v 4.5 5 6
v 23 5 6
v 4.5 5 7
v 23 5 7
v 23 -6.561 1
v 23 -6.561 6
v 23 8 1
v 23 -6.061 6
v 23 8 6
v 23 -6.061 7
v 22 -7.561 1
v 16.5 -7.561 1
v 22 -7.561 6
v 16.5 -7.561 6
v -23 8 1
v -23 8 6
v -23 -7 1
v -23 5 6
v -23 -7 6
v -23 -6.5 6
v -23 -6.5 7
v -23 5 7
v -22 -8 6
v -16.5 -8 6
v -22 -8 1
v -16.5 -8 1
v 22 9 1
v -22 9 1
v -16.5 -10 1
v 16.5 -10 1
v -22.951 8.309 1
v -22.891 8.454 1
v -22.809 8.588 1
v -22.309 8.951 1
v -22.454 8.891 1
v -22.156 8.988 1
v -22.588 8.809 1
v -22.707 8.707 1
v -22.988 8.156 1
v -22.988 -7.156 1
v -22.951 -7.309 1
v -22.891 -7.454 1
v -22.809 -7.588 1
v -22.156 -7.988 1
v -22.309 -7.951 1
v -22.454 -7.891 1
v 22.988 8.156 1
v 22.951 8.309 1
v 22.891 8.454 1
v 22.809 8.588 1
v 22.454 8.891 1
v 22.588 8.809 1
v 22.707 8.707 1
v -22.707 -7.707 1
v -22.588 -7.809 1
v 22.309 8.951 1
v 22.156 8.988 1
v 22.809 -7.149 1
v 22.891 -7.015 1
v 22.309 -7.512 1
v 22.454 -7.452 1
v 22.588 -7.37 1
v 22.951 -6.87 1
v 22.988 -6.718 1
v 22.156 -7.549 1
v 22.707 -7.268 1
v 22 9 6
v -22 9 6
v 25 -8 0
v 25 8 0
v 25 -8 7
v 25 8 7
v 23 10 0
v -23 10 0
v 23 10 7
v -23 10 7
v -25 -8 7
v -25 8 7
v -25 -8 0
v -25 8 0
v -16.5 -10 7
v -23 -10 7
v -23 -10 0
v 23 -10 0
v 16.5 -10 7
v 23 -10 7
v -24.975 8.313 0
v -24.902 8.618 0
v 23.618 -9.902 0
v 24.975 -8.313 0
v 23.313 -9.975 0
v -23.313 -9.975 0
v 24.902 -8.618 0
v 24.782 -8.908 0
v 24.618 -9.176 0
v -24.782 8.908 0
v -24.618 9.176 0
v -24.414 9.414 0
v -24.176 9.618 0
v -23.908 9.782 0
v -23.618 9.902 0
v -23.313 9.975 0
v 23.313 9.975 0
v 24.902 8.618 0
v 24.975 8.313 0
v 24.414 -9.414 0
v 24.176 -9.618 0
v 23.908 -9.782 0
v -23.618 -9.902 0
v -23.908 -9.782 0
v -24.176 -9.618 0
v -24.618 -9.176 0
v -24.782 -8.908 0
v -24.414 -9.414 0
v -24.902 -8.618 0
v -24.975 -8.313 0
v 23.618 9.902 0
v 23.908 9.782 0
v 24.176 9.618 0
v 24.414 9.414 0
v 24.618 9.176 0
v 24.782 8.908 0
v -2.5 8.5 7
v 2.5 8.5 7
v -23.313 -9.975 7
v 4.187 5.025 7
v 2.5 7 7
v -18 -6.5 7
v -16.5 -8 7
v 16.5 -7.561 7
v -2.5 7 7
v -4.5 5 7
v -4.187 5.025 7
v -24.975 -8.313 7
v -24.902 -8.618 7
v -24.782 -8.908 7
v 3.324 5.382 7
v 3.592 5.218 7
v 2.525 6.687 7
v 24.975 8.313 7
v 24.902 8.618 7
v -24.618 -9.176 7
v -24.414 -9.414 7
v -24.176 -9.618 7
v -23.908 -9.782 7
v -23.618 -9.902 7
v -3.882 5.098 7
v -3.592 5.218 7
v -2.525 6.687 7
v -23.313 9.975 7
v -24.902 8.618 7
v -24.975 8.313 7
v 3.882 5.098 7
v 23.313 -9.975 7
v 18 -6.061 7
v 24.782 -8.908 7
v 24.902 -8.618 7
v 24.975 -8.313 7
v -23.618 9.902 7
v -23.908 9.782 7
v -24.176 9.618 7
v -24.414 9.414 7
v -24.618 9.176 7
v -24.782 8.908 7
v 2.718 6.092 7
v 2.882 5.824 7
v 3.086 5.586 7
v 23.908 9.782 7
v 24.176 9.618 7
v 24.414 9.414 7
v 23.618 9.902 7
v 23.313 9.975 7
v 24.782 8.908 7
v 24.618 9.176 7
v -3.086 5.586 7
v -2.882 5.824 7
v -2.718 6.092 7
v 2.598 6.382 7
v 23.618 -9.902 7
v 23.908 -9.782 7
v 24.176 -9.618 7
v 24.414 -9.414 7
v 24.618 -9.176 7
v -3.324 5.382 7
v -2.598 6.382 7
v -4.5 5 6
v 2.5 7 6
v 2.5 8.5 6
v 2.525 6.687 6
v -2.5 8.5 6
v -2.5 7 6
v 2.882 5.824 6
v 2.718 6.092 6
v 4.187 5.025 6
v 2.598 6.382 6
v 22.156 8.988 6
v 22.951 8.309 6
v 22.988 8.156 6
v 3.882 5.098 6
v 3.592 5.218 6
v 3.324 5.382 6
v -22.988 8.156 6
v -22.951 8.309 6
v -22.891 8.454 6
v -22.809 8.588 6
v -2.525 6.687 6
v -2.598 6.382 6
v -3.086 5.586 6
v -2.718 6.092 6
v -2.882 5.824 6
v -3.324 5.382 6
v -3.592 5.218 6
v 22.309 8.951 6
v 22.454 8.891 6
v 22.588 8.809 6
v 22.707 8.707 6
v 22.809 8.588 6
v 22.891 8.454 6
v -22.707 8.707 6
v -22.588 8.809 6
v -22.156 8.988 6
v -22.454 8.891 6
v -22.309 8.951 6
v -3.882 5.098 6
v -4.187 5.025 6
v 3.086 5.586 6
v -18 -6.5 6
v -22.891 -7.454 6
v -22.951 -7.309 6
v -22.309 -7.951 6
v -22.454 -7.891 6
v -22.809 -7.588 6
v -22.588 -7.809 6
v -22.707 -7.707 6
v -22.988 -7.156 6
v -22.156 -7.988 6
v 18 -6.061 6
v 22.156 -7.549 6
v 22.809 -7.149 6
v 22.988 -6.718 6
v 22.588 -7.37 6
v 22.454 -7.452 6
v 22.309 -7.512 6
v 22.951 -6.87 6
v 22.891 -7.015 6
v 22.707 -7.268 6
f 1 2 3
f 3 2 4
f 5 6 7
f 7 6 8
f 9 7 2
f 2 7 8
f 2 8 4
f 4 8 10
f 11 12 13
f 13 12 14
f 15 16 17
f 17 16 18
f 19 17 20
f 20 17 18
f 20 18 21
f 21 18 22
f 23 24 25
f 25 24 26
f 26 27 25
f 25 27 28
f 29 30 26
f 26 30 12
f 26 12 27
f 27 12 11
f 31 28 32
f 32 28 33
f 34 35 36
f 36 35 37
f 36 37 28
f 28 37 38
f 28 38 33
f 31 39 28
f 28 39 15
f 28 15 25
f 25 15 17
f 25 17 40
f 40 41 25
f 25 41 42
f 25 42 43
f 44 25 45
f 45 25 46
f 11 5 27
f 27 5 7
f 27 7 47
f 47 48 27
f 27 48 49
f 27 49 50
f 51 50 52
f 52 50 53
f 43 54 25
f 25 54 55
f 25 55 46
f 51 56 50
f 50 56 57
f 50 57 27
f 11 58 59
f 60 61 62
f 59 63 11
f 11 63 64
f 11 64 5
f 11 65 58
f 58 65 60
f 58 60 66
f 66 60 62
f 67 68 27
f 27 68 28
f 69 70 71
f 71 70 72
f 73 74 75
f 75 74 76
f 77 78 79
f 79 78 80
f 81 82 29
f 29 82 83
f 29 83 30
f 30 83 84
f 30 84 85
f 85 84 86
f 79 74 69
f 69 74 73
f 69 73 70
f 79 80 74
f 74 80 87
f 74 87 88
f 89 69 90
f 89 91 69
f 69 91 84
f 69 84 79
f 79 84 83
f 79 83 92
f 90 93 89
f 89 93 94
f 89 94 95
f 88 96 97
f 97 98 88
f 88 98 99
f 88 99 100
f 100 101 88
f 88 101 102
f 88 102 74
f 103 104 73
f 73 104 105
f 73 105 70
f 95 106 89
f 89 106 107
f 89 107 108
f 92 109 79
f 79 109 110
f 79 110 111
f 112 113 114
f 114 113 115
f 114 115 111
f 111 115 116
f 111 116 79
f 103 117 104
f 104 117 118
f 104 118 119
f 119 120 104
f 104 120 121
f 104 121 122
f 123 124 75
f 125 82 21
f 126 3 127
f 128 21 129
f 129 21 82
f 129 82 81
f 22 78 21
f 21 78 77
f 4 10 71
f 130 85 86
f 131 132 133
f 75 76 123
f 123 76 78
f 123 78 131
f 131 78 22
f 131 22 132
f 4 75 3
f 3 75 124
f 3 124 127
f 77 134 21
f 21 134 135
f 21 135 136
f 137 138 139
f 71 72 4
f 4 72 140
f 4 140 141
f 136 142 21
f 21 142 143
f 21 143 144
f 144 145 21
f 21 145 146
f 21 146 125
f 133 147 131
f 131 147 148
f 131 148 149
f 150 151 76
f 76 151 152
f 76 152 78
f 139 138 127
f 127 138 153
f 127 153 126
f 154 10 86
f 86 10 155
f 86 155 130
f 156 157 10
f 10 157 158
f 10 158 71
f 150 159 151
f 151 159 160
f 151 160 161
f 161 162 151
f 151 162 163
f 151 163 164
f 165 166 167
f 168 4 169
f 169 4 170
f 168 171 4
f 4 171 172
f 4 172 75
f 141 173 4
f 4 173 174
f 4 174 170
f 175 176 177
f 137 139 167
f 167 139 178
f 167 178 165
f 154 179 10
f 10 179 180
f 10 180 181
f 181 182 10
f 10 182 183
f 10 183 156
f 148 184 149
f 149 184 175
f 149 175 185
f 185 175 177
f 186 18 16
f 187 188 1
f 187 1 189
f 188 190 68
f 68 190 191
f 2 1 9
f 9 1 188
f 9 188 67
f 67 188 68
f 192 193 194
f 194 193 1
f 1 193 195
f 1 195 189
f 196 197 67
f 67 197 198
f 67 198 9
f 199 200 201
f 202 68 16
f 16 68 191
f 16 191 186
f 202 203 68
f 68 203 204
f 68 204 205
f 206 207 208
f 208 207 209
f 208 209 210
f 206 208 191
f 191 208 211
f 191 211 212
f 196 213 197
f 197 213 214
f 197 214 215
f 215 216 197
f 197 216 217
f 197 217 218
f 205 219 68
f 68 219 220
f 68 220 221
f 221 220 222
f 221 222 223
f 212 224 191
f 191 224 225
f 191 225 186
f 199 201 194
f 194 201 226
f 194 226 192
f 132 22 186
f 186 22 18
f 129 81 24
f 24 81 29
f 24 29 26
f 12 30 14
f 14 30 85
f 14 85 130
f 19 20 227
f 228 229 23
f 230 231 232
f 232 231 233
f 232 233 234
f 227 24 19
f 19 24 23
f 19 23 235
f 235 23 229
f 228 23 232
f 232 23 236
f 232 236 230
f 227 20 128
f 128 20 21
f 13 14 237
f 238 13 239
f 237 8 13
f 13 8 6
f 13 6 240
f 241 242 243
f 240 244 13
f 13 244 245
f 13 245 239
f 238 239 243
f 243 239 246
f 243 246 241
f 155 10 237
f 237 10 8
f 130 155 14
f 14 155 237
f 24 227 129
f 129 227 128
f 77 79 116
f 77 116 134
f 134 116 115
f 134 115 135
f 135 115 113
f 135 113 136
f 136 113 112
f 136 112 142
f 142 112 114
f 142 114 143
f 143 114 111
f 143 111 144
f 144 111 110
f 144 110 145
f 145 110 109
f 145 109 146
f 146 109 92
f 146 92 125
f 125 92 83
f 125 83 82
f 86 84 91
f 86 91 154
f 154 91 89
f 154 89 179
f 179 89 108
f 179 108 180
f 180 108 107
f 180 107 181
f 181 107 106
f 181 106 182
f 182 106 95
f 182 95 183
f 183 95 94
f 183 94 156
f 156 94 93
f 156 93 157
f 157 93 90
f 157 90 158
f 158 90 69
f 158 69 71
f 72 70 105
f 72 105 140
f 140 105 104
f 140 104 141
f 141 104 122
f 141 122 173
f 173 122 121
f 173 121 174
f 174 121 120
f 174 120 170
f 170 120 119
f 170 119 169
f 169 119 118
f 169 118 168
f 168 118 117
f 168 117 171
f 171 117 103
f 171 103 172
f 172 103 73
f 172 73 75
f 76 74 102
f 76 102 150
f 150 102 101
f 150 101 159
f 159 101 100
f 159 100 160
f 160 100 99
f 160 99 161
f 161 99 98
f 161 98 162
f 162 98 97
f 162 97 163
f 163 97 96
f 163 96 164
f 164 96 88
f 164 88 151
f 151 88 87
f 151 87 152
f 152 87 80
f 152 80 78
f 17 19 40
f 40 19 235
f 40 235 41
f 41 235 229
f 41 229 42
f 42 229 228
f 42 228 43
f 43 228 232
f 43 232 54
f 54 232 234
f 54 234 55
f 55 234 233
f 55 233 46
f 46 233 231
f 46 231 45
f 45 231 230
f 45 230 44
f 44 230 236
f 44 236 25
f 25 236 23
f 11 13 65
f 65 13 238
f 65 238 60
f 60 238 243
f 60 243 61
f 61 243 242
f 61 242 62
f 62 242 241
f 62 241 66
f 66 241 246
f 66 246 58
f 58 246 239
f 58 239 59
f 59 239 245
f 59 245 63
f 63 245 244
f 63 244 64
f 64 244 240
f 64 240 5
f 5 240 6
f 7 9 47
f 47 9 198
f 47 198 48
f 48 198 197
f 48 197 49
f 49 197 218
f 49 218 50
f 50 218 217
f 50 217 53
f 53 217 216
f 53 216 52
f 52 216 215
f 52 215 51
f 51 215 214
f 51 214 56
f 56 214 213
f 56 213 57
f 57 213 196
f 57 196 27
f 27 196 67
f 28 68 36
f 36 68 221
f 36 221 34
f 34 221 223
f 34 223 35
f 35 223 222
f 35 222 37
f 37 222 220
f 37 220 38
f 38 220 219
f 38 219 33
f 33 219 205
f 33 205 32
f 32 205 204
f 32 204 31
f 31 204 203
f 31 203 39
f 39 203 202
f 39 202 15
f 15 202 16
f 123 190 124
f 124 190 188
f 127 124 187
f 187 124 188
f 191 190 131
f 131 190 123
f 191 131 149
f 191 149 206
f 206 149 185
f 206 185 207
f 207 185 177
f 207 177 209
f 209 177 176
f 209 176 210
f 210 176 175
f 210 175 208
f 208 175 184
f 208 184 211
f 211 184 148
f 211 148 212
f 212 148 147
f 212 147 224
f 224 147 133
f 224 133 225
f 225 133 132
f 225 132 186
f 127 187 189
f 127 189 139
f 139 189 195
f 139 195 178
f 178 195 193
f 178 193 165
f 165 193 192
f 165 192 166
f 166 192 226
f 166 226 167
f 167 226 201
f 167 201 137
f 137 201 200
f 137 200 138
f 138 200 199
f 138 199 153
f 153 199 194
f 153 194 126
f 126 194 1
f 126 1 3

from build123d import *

# Parameters (mm, degrees)
SKETCH1_W           = 50
SKETCH1_H           = 20
BOSS_EXTRUDE1_DEPTH = 1
BOSS_EXTRUDE2_DEPTH = 6
SKETCH3_W           = 46
SKETCH3_H           = 1
BOSS_EXTRUDE3_DEPTH = 4
SKETCH4_W           = 6.5
SKETCH4_H           = 2
SKETCH4_H_2         = 2.438820915
BOSS_EXTRUDE4_DEPTH = 6
SKETCH5_W           = 6.5
SKETCH5_H           = 1
BOSS_EXTRUDE5_DEPTH = 1.5
SKETCH6_W           = 6.5
SKETCH6_H           = 1
BOSS_EXTRUDE6_DEPTH = 1.5
CHAMFER1_SIZE       = 1.5
FILLET1_R           = 2
FILLET2_R           = 1
SKETCH7_W           = 5
SKETCH7_H           = 3.5
CUT_EXTRUDE1_DEPTH  = 2
FILLET3_R           = 2


with BuildPart() as part:
    # Sketch1 → Boss-Extrude1 (new body)
    with BuildSketch(Plane.XY):
        Rectangle(SKETCH1_W, SKETCH1_H)
    extrude(amount=BOSS_EXTRUDE1_DEPTH)

    # Sketch2 → Boss-Extrude2 (add)
    with BuildSketch(Plane.XY.offset(1)):
        Polygon((-25, 10), (25, 10), (25, 9), (25, -10), (23, -10), (23, 9), (-23, 9), (-23, -10), (-25, -10), (-25, 9), align=None)
    extrude(amount=BOSS_EXTRUDE2_DEPTH)

    # Sketch3 → Boss-Extrude3 (add)
    with BuildSketch(Plane.XZ.offset(-9)):
        with Locations((0, 6.5)):
            Rectangle(SKETCH3_W, SKETCH3_H)
    extrude(amount=BOSS_EXTRUDE3_DEPTH)

    # Sketch4 → Boss-Extrude4 (add)
    with BuildSketch(Plane.XY.offset(1)):
        with Locations((-19.75, -9)):
            Rectangle(SKETCH4_W, SKETCH4_H)
        with Locations((19.75, -8.780589542)):
            Rectangle(SKETCH4_W, SKETCH4_H_2)
    extrude(amount=BOSS_EXTRUDE4_DEPTH)

    # Sketch5 → Boss-Extrude5 (add)
    with BuildSketch(Plane(origin=(0, -8, 0), x_dir=(1, 0, 0), z_dir=(0, 1, 0))):
        with Locations((-19.75, -6.5)):
            Rectangle(SKETCH5_W, SKETCH5_H)
    extrude(amount=BOSS_EXTRUDE5_DEPTH)

    # Sketch6 → Boss-Extrude6 (add)
    with BuildSketch(Plane(origin=(0, -7.561179085, 0), x_dir=(1, 0, 0), z_dir=(0, 1, 0))):
        with Locations((19.75, -6.5)):
            Rectangle(SKETCH6_W, SKETCH6_H)
    extrude(amount=BOSS_EXTRUDE6_DEPTH)

    # Chamfer1
    chamfer1_edges = [part.edges().sort_by_distance(p)[0] for p in [
        (16.5, -6.061179085, 6.5),
        (-16.5, -6.5, 6.5),
    ]]
    chamfer(chamfer1_edges, length=CHAMFER1_SIZE)

    # Fillet1
    fillet1_edges = [part.edges().sort_by_distance(p)[0] for p in [
        (25, -10, 3.5),
        (-25, -10, 3.5),
        (-25, 10, 3.5),
        (25, 10, 3.5),
    ]]
    fillet(fillet1_edges, radius=FILLET1_R)

    # Fillet2
    fillet2_edges = [part.edges().sort_by_distance(p)[0] for p in [
        (23, 9, 3.5),
        (-23, 9, 3.5),
        (-23, -8, 3.5),
        (23, -7.561179085, 3.5),
    ]]
    fillet(fillet2_edges, radius=FILLET2_R)

    # Sketch7 → Cut-Extrude1 (cut)
    with BuildSketch(Plane.XY.offset(7)):
        with Locations((0, 6.75)):
            Rectangle(SKETCH7_W, SKETCH7_H)
    extrude(amount=-CUT_EXTRUDE1_DEPTH, mode=Mode.SUBTRACT)

    # Fillet3
    fillet3_edges = [part.edges().sort_by_distance(p)[0] for p in [
        (-2.5, 5, 6.5),
        (2.5, 5, 6.5),
    ]]
    fillet(fillet3_edges, radius=FILLET3_R)


solid = part.part
